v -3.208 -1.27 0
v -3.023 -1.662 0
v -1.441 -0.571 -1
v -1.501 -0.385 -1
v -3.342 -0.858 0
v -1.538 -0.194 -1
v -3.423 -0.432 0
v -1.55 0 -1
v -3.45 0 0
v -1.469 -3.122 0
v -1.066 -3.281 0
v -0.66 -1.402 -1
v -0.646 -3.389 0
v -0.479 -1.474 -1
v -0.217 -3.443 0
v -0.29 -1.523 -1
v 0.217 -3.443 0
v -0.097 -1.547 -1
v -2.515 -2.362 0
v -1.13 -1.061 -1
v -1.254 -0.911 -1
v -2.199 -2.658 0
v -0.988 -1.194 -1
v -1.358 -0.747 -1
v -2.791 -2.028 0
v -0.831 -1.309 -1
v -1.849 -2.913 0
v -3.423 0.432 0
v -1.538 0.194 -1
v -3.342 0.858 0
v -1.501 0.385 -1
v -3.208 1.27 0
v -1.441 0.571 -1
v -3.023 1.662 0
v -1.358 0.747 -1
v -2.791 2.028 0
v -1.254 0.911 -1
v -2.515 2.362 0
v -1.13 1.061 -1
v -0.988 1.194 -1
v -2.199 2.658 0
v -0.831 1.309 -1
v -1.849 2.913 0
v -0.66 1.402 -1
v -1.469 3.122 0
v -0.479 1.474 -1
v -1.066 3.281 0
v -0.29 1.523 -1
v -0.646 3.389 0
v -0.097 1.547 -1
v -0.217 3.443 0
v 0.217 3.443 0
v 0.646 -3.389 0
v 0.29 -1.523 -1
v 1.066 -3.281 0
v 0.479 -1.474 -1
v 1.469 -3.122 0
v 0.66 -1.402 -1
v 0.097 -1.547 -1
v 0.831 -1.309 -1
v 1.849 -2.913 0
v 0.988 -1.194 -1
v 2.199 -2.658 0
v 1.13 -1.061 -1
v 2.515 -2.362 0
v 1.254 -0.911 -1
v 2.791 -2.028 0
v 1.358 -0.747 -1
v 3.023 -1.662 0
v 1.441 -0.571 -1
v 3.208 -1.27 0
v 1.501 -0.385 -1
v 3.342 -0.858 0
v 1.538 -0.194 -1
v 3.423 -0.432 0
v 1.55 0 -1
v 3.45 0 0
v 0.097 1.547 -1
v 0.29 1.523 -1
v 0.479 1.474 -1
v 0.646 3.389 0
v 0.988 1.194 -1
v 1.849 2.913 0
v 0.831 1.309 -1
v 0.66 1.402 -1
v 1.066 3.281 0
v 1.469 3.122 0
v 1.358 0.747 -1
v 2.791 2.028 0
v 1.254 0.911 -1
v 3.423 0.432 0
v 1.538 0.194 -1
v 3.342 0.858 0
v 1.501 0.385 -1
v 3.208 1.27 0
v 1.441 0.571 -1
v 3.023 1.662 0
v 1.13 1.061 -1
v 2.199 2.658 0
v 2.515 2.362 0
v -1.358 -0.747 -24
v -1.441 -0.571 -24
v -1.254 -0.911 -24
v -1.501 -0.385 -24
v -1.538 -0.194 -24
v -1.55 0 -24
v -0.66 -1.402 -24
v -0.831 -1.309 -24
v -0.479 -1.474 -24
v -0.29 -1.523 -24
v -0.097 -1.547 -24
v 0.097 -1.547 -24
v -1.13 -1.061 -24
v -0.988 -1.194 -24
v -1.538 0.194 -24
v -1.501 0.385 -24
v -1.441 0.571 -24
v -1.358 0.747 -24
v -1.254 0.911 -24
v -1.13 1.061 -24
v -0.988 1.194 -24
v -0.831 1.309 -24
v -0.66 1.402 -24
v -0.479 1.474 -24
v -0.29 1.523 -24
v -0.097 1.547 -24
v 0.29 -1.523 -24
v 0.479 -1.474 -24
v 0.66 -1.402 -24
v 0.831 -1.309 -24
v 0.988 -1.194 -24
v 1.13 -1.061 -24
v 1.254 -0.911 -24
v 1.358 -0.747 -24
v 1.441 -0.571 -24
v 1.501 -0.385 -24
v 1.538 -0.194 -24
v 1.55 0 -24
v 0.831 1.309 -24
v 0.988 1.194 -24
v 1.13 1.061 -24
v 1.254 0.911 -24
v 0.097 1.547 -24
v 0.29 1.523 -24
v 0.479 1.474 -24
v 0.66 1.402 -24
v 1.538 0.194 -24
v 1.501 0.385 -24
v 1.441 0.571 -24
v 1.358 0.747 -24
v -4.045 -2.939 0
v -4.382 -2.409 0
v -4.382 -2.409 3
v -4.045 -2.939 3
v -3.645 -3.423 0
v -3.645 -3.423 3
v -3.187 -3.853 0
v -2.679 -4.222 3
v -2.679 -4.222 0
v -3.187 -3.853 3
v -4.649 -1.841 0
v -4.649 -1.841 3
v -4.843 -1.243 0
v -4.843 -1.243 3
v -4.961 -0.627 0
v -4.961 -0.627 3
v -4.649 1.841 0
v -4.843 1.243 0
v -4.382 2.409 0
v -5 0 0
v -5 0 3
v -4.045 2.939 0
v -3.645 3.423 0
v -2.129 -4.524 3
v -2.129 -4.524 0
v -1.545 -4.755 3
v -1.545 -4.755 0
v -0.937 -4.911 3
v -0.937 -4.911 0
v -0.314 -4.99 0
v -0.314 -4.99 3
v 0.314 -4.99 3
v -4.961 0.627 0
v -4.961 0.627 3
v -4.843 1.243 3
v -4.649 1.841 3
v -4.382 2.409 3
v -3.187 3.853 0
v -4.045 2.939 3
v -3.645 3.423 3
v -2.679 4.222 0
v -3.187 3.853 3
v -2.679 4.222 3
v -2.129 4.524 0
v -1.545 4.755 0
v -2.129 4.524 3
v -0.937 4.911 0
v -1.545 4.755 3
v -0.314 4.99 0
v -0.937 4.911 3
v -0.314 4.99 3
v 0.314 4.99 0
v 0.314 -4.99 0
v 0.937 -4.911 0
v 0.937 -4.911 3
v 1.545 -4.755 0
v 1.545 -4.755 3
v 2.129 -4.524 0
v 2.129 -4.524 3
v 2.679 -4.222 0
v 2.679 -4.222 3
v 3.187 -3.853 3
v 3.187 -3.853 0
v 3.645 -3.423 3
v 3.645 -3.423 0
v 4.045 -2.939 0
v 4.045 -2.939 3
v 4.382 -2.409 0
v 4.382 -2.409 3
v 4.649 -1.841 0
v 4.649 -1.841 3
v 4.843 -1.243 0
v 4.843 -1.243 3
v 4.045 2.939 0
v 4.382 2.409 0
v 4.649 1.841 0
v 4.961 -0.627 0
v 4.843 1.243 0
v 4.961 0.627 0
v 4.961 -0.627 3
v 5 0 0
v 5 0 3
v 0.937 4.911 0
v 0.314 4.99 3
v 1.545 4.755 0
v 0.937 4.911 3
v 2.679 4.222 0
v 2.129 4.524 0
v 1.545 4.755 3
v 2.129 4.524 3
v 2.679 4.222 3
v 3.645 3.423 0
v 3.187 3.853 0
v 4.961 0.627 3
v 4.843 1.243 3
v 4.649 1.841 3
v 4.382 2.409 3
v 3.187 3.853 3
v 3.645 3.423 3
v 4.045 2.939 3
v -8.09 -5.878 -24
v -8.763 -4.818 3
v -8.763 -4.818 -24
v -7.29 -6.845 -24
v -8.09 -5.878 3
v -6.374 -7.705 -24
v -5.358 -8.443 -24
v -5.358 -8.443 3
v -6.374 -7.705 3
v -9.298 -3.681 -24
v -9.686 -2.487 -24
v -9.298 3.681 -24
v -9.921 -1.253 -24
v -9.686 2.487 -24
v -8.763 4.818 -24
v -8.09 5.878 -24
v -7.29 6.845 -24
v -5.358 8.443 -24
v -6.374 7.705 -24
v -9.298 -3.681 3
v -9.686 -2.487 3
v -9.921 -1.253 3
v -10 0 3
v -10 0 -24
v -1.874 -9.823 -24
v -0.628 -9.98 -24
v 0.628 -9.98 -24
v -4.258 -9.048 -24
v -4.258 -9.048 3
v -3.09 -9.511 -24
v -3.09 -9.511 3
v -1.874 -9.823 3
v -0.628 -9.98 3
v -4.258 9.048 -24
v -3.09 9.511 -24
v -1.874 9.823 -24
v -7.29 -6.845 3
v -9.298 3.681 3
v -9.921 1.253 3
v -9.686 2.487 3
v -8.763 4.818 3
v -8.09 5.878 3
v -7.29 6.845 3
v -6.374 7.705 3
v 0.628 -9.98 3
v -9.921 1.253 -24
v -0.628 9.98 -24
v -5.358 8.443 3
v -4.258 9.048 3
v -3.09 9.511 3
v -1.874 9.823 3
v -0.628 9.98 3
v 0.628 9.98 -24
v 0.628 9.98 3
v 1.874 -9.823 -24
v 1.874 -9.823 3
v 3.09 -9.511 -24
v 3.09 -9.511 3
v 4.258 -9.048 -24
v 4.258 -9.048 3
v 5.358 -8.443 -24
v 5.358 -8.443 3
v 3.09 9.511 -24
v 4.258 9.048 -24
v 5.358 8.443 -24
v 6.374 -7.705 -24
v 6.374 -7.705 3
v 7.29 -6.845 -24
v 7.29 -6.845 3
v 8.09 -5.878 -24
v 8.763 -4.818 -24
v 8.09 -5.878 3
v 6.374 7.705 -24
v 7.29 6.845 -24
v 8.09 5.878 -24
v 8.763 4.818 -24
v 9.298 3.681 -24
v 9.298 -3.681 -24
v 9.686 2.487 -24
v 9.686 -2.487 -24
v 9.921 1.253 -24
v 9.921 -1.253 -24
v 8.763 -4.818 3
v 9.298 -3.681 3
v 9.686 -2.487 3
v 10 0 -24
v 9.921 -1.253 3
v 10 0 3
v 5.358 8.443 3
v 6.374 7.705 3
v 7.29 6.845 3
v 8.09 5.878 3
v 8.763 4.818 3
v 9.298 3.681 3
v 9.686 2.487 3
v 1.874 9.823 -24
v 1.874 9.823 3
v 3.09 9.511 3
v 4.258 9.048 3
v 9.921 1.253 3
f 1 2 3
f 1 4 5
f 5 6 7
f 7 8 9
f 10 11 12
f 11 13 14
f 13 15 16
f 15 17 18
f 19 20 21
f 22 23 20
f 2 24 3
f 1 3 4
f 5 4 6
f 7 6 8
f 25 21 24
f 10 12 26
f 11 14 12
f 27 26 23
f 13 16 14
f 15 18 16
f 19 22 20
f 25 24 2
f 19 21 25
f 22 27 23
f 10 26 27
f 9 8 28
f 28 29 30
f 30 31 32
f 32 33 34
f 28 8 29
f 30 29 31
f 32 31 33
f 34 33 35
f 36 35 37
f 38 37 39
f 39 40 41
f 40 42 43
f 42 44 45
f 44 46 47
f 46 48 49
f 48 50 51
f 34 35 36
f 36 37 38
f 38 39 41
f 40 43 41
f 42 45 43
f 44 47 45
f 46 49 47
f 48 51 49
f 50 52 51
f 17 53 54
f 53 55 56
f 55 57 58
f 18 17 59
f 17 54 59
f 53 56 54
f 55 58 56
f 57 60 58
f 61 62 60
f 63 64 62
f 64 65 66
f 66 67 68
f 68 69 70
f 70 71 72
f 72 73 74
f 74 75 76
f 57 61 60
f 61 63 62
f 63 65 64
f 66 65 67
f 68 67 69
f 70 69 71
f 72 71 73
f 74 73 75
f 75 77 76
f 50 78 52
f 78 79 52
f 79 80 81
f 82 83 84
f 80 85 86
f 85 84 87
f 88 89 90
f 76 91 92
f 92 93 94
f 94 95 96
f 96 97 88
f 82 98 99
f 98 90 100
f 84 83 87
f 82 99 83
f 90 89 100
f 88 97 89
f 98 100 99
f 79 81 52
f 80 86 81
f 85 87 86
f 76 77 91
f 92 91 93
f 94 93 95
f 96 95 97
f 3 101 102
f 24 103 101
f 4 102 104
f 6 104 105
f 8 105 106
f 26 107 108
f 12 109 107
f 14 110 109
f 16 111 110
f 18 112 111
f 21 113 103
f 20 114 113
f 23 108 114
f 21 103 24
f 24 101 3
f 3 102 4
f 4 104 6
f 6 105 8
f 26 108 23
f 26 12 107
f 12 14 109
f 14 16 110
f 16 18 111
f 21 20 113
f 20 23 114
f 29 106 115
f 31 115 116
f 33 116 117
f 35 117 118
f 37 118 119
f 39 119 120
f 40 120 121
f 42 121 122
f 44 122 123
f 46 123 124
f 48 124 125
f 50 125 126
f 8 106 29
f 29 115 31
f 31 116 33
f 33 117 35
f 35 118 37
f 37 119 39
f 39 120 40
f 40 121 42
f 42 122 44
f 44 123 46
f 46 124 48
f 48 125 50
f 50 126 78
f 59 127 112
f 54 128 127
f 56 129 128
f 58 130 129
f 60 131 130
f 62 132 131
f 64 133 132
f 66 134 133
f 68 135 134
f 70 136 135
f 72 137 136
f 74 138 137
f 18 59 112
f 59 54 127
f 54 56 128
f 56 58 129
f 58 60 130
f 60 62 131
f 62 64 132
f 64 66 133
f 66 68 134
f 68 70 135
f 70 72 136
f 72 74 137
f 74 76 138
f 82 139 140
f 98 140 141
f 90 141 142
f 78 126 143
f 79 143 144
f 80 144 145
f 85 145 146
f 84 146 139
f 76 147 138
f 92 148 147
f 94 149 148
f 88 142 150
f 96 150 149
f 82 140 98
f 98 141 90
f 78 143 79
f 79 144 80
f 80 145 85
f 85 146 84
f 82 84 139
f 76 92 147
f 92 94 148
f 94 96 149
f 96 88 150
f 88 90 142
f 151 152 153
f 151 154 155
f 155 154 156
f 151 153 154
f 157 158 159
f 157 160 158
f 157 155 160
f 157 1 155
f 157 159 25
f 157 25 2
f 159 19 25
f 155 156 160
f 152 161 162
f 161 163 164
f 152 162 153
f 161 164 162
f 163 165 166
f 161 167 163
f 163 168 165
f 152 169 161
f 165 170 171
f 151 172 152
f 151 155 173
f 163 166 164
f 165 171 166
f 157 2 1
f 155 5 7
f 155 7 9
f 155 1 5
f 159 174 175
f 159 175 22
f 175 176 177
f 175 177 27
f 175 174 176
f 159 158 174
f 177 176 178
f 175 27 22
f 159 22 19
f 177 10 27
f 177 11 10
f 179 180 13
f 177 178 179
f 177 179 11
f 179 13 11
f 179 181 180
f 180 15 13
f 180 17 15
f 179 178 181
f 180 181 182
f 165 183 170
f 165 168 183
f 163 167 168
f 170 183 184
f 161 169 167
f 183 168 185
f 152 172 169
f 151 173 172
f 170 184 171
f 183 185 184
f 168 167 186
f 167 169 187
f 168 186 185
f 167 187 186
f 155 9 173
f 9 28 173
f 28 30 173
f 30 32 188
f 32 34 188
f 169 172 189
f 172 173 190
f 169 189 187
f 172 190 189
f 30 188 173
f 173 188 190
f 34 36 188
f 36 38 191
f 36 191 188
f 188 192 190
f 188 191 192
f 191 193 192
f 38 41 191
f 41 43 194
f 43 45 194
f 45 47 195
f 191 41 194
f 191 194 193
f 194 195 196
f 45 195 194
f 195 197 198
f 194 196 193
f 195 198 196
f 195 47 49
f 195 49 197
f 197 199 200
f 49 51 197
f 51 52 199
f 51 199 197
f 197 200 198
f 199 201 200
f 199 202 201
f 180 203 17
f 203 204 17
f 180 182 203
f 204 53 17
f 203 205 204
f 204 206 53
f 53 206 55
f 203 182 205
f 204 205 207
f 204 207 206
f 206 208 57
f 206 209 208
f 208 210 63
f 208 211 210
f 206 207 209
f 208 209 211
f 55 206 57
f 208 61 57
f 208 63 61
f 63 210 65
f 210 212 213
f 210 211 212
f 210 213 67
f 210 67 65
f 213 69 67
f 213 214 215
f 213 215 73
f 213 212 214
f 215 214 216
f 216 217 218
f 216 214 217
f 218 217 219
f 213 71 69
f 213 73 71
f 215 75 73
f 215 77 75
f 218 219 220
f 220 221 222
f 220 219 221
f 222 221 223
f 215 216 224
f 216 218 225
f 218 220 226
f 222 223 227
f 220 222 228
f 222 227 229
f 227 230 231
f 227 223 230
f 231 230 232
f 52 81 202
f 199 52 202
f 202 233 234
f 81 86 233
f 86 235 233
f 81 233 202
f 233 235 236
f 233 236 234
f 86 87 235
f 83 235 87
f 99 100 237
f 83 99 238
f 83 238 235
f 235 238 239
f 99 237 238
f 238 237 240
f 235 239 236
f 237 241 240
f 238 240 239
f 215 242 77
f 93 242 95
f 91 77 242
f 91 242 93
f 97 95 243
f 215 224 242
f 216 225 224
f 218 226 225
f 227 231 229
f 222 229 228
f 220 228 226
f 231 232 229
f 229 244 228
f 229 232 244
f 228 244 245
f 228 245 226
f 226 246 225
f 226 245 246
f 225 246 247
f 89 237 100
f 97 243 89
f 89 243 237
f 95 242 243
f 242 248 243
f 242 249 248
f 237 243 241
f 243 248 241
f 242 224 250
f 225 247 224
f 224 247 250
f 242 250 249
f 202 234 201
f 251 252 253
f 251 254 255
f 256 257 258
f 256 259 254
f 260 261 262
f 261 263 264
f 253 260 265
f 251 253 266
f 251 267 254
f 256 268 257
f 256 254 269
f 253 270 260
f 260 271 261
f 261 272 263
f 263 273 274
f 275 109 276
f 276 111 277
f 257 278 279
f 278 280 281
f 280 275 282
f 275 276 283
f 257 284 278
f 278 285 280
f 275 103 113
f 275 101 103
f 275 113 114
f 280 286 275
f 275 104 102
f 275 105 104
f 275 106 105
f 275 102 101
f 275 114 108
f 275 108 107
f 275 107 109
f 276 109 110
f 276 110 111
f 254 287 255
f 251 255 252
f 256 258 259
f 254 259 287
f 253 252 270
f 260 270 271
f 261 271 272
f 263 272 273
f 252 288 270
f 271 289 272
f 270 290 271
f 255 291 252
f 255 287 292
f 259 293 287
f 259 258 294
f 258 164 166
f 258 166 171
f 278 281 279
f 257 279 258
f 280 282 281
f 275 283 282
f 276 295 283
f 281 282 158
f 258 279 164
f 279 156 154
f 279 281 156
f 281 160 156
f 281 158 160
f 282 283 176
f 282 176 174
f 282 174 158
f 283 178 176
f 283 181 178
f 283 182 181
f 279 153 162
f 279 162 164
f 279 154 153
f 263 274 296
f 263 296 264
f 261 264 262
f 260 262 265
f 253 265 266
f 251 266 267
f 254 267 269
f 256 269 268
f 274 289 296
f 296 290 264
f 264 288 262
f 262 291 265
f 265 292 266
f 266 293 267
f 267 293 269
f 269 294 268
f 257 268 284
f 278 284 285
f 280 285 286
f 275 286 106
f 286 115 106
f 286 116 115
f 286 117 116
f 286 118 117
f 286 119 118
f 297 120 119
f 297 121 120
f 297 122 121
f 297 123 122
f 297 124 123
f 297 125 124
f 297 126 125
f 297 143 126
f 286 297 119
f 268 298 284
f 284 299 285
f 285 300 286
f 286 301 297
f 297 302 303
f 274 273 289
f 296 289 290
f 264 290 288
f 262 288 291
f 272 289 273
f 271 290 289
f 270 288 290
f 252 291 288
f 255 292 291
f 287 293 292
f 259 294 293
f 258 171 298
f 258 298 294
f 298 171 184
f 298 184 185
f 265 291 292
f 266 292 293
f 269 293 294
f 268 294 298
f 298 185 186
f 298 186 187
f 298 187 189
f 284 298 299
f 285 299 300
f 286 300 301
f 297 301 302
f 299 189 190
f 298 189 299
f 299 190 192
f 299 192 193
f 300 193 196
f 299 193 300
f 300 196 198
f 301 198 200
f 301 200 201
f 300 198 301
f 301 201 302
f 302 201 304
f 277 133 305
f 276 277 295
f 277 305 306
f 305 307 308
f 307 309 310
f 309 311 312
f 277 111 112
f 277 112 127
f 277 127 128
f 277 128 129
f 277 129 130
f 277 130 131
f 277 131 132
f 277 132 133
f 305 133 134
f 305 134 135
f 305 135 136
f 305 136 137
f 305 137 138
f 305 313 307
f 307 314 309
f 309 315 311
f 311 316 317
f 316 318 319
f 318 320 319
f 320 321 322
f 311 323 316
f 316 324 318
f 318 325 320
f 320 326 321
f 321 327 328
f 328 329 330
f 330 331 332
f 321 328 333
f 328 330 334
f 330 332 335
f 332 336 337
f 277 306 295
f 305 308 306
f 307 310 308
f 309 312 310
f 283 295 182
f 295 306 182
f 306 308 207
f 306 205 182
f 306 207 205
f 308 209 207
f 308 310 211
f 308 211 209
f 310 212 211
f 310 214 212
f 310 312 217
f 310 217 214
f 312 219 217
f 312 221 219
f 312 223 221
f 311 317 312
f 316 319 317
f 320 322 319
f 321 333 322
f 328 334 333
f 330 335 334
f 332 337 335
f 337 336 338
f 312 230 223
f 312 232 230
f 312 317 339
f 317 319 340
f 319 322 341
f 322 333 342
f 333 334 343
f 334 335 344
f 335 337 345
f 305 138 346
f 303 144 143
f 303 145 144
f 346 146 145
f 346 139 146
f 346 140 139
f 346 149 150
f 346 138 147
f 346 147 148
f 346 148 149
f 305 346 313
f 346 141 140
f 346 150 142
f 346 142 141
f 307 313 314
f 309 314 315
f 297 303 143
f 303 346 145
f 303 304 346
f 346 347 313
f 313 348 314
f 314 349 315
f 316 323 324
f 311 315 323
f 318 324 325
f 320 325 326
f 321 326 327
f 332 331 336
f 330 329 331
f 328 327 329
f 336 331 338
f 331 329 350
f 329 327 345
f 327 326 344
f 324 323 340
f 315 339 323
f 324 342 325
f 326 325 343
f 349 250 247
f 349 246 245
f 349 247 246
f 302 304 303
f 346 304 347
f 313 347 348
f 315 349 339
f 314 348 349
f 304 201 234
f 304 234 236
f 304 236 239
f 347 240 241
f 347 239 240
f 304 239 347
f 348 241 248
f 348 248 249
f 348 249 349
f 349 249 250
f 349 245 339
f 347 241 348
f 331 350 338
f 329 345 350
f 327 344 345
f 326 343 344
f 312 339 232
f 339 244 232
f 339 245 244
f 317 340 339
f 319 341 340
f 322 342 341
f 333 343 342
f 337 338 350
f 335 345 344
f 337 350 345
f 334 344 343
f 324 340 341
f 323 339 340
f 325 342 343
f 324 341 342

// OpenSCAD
$fn = 50;

difference() {
	union() {
		translate(v = [0, 0, -24.0]) {
			cylinder(h = 27, r = 10.0);
		}
	}
	union() {
		translate(v = [0, 0, 0]) {
			rotate(a = [0, 0, 0]) {
				difference() {
					union() {
						translate(v = [0, 0, -27.0]) {
							cylinder(h = 27, r = 1.25);
						}
						translate(v = [0, 0, -1.0]) {
							cylinder(h = 1.0, r1 = 1.55, r2 = 3.45);
						}
						translate(v = [0, 0, -27.0]) {
							cylinder(h = 27, r = 1.55);
						}
						translate(v = [0, 0, -27.0]) {
							cylinder(h = 27, r = 1.25);
						}
					}
					union();
				}
			}
		}
		#cylinder(h = 3, r = 5.0);
	}
}
